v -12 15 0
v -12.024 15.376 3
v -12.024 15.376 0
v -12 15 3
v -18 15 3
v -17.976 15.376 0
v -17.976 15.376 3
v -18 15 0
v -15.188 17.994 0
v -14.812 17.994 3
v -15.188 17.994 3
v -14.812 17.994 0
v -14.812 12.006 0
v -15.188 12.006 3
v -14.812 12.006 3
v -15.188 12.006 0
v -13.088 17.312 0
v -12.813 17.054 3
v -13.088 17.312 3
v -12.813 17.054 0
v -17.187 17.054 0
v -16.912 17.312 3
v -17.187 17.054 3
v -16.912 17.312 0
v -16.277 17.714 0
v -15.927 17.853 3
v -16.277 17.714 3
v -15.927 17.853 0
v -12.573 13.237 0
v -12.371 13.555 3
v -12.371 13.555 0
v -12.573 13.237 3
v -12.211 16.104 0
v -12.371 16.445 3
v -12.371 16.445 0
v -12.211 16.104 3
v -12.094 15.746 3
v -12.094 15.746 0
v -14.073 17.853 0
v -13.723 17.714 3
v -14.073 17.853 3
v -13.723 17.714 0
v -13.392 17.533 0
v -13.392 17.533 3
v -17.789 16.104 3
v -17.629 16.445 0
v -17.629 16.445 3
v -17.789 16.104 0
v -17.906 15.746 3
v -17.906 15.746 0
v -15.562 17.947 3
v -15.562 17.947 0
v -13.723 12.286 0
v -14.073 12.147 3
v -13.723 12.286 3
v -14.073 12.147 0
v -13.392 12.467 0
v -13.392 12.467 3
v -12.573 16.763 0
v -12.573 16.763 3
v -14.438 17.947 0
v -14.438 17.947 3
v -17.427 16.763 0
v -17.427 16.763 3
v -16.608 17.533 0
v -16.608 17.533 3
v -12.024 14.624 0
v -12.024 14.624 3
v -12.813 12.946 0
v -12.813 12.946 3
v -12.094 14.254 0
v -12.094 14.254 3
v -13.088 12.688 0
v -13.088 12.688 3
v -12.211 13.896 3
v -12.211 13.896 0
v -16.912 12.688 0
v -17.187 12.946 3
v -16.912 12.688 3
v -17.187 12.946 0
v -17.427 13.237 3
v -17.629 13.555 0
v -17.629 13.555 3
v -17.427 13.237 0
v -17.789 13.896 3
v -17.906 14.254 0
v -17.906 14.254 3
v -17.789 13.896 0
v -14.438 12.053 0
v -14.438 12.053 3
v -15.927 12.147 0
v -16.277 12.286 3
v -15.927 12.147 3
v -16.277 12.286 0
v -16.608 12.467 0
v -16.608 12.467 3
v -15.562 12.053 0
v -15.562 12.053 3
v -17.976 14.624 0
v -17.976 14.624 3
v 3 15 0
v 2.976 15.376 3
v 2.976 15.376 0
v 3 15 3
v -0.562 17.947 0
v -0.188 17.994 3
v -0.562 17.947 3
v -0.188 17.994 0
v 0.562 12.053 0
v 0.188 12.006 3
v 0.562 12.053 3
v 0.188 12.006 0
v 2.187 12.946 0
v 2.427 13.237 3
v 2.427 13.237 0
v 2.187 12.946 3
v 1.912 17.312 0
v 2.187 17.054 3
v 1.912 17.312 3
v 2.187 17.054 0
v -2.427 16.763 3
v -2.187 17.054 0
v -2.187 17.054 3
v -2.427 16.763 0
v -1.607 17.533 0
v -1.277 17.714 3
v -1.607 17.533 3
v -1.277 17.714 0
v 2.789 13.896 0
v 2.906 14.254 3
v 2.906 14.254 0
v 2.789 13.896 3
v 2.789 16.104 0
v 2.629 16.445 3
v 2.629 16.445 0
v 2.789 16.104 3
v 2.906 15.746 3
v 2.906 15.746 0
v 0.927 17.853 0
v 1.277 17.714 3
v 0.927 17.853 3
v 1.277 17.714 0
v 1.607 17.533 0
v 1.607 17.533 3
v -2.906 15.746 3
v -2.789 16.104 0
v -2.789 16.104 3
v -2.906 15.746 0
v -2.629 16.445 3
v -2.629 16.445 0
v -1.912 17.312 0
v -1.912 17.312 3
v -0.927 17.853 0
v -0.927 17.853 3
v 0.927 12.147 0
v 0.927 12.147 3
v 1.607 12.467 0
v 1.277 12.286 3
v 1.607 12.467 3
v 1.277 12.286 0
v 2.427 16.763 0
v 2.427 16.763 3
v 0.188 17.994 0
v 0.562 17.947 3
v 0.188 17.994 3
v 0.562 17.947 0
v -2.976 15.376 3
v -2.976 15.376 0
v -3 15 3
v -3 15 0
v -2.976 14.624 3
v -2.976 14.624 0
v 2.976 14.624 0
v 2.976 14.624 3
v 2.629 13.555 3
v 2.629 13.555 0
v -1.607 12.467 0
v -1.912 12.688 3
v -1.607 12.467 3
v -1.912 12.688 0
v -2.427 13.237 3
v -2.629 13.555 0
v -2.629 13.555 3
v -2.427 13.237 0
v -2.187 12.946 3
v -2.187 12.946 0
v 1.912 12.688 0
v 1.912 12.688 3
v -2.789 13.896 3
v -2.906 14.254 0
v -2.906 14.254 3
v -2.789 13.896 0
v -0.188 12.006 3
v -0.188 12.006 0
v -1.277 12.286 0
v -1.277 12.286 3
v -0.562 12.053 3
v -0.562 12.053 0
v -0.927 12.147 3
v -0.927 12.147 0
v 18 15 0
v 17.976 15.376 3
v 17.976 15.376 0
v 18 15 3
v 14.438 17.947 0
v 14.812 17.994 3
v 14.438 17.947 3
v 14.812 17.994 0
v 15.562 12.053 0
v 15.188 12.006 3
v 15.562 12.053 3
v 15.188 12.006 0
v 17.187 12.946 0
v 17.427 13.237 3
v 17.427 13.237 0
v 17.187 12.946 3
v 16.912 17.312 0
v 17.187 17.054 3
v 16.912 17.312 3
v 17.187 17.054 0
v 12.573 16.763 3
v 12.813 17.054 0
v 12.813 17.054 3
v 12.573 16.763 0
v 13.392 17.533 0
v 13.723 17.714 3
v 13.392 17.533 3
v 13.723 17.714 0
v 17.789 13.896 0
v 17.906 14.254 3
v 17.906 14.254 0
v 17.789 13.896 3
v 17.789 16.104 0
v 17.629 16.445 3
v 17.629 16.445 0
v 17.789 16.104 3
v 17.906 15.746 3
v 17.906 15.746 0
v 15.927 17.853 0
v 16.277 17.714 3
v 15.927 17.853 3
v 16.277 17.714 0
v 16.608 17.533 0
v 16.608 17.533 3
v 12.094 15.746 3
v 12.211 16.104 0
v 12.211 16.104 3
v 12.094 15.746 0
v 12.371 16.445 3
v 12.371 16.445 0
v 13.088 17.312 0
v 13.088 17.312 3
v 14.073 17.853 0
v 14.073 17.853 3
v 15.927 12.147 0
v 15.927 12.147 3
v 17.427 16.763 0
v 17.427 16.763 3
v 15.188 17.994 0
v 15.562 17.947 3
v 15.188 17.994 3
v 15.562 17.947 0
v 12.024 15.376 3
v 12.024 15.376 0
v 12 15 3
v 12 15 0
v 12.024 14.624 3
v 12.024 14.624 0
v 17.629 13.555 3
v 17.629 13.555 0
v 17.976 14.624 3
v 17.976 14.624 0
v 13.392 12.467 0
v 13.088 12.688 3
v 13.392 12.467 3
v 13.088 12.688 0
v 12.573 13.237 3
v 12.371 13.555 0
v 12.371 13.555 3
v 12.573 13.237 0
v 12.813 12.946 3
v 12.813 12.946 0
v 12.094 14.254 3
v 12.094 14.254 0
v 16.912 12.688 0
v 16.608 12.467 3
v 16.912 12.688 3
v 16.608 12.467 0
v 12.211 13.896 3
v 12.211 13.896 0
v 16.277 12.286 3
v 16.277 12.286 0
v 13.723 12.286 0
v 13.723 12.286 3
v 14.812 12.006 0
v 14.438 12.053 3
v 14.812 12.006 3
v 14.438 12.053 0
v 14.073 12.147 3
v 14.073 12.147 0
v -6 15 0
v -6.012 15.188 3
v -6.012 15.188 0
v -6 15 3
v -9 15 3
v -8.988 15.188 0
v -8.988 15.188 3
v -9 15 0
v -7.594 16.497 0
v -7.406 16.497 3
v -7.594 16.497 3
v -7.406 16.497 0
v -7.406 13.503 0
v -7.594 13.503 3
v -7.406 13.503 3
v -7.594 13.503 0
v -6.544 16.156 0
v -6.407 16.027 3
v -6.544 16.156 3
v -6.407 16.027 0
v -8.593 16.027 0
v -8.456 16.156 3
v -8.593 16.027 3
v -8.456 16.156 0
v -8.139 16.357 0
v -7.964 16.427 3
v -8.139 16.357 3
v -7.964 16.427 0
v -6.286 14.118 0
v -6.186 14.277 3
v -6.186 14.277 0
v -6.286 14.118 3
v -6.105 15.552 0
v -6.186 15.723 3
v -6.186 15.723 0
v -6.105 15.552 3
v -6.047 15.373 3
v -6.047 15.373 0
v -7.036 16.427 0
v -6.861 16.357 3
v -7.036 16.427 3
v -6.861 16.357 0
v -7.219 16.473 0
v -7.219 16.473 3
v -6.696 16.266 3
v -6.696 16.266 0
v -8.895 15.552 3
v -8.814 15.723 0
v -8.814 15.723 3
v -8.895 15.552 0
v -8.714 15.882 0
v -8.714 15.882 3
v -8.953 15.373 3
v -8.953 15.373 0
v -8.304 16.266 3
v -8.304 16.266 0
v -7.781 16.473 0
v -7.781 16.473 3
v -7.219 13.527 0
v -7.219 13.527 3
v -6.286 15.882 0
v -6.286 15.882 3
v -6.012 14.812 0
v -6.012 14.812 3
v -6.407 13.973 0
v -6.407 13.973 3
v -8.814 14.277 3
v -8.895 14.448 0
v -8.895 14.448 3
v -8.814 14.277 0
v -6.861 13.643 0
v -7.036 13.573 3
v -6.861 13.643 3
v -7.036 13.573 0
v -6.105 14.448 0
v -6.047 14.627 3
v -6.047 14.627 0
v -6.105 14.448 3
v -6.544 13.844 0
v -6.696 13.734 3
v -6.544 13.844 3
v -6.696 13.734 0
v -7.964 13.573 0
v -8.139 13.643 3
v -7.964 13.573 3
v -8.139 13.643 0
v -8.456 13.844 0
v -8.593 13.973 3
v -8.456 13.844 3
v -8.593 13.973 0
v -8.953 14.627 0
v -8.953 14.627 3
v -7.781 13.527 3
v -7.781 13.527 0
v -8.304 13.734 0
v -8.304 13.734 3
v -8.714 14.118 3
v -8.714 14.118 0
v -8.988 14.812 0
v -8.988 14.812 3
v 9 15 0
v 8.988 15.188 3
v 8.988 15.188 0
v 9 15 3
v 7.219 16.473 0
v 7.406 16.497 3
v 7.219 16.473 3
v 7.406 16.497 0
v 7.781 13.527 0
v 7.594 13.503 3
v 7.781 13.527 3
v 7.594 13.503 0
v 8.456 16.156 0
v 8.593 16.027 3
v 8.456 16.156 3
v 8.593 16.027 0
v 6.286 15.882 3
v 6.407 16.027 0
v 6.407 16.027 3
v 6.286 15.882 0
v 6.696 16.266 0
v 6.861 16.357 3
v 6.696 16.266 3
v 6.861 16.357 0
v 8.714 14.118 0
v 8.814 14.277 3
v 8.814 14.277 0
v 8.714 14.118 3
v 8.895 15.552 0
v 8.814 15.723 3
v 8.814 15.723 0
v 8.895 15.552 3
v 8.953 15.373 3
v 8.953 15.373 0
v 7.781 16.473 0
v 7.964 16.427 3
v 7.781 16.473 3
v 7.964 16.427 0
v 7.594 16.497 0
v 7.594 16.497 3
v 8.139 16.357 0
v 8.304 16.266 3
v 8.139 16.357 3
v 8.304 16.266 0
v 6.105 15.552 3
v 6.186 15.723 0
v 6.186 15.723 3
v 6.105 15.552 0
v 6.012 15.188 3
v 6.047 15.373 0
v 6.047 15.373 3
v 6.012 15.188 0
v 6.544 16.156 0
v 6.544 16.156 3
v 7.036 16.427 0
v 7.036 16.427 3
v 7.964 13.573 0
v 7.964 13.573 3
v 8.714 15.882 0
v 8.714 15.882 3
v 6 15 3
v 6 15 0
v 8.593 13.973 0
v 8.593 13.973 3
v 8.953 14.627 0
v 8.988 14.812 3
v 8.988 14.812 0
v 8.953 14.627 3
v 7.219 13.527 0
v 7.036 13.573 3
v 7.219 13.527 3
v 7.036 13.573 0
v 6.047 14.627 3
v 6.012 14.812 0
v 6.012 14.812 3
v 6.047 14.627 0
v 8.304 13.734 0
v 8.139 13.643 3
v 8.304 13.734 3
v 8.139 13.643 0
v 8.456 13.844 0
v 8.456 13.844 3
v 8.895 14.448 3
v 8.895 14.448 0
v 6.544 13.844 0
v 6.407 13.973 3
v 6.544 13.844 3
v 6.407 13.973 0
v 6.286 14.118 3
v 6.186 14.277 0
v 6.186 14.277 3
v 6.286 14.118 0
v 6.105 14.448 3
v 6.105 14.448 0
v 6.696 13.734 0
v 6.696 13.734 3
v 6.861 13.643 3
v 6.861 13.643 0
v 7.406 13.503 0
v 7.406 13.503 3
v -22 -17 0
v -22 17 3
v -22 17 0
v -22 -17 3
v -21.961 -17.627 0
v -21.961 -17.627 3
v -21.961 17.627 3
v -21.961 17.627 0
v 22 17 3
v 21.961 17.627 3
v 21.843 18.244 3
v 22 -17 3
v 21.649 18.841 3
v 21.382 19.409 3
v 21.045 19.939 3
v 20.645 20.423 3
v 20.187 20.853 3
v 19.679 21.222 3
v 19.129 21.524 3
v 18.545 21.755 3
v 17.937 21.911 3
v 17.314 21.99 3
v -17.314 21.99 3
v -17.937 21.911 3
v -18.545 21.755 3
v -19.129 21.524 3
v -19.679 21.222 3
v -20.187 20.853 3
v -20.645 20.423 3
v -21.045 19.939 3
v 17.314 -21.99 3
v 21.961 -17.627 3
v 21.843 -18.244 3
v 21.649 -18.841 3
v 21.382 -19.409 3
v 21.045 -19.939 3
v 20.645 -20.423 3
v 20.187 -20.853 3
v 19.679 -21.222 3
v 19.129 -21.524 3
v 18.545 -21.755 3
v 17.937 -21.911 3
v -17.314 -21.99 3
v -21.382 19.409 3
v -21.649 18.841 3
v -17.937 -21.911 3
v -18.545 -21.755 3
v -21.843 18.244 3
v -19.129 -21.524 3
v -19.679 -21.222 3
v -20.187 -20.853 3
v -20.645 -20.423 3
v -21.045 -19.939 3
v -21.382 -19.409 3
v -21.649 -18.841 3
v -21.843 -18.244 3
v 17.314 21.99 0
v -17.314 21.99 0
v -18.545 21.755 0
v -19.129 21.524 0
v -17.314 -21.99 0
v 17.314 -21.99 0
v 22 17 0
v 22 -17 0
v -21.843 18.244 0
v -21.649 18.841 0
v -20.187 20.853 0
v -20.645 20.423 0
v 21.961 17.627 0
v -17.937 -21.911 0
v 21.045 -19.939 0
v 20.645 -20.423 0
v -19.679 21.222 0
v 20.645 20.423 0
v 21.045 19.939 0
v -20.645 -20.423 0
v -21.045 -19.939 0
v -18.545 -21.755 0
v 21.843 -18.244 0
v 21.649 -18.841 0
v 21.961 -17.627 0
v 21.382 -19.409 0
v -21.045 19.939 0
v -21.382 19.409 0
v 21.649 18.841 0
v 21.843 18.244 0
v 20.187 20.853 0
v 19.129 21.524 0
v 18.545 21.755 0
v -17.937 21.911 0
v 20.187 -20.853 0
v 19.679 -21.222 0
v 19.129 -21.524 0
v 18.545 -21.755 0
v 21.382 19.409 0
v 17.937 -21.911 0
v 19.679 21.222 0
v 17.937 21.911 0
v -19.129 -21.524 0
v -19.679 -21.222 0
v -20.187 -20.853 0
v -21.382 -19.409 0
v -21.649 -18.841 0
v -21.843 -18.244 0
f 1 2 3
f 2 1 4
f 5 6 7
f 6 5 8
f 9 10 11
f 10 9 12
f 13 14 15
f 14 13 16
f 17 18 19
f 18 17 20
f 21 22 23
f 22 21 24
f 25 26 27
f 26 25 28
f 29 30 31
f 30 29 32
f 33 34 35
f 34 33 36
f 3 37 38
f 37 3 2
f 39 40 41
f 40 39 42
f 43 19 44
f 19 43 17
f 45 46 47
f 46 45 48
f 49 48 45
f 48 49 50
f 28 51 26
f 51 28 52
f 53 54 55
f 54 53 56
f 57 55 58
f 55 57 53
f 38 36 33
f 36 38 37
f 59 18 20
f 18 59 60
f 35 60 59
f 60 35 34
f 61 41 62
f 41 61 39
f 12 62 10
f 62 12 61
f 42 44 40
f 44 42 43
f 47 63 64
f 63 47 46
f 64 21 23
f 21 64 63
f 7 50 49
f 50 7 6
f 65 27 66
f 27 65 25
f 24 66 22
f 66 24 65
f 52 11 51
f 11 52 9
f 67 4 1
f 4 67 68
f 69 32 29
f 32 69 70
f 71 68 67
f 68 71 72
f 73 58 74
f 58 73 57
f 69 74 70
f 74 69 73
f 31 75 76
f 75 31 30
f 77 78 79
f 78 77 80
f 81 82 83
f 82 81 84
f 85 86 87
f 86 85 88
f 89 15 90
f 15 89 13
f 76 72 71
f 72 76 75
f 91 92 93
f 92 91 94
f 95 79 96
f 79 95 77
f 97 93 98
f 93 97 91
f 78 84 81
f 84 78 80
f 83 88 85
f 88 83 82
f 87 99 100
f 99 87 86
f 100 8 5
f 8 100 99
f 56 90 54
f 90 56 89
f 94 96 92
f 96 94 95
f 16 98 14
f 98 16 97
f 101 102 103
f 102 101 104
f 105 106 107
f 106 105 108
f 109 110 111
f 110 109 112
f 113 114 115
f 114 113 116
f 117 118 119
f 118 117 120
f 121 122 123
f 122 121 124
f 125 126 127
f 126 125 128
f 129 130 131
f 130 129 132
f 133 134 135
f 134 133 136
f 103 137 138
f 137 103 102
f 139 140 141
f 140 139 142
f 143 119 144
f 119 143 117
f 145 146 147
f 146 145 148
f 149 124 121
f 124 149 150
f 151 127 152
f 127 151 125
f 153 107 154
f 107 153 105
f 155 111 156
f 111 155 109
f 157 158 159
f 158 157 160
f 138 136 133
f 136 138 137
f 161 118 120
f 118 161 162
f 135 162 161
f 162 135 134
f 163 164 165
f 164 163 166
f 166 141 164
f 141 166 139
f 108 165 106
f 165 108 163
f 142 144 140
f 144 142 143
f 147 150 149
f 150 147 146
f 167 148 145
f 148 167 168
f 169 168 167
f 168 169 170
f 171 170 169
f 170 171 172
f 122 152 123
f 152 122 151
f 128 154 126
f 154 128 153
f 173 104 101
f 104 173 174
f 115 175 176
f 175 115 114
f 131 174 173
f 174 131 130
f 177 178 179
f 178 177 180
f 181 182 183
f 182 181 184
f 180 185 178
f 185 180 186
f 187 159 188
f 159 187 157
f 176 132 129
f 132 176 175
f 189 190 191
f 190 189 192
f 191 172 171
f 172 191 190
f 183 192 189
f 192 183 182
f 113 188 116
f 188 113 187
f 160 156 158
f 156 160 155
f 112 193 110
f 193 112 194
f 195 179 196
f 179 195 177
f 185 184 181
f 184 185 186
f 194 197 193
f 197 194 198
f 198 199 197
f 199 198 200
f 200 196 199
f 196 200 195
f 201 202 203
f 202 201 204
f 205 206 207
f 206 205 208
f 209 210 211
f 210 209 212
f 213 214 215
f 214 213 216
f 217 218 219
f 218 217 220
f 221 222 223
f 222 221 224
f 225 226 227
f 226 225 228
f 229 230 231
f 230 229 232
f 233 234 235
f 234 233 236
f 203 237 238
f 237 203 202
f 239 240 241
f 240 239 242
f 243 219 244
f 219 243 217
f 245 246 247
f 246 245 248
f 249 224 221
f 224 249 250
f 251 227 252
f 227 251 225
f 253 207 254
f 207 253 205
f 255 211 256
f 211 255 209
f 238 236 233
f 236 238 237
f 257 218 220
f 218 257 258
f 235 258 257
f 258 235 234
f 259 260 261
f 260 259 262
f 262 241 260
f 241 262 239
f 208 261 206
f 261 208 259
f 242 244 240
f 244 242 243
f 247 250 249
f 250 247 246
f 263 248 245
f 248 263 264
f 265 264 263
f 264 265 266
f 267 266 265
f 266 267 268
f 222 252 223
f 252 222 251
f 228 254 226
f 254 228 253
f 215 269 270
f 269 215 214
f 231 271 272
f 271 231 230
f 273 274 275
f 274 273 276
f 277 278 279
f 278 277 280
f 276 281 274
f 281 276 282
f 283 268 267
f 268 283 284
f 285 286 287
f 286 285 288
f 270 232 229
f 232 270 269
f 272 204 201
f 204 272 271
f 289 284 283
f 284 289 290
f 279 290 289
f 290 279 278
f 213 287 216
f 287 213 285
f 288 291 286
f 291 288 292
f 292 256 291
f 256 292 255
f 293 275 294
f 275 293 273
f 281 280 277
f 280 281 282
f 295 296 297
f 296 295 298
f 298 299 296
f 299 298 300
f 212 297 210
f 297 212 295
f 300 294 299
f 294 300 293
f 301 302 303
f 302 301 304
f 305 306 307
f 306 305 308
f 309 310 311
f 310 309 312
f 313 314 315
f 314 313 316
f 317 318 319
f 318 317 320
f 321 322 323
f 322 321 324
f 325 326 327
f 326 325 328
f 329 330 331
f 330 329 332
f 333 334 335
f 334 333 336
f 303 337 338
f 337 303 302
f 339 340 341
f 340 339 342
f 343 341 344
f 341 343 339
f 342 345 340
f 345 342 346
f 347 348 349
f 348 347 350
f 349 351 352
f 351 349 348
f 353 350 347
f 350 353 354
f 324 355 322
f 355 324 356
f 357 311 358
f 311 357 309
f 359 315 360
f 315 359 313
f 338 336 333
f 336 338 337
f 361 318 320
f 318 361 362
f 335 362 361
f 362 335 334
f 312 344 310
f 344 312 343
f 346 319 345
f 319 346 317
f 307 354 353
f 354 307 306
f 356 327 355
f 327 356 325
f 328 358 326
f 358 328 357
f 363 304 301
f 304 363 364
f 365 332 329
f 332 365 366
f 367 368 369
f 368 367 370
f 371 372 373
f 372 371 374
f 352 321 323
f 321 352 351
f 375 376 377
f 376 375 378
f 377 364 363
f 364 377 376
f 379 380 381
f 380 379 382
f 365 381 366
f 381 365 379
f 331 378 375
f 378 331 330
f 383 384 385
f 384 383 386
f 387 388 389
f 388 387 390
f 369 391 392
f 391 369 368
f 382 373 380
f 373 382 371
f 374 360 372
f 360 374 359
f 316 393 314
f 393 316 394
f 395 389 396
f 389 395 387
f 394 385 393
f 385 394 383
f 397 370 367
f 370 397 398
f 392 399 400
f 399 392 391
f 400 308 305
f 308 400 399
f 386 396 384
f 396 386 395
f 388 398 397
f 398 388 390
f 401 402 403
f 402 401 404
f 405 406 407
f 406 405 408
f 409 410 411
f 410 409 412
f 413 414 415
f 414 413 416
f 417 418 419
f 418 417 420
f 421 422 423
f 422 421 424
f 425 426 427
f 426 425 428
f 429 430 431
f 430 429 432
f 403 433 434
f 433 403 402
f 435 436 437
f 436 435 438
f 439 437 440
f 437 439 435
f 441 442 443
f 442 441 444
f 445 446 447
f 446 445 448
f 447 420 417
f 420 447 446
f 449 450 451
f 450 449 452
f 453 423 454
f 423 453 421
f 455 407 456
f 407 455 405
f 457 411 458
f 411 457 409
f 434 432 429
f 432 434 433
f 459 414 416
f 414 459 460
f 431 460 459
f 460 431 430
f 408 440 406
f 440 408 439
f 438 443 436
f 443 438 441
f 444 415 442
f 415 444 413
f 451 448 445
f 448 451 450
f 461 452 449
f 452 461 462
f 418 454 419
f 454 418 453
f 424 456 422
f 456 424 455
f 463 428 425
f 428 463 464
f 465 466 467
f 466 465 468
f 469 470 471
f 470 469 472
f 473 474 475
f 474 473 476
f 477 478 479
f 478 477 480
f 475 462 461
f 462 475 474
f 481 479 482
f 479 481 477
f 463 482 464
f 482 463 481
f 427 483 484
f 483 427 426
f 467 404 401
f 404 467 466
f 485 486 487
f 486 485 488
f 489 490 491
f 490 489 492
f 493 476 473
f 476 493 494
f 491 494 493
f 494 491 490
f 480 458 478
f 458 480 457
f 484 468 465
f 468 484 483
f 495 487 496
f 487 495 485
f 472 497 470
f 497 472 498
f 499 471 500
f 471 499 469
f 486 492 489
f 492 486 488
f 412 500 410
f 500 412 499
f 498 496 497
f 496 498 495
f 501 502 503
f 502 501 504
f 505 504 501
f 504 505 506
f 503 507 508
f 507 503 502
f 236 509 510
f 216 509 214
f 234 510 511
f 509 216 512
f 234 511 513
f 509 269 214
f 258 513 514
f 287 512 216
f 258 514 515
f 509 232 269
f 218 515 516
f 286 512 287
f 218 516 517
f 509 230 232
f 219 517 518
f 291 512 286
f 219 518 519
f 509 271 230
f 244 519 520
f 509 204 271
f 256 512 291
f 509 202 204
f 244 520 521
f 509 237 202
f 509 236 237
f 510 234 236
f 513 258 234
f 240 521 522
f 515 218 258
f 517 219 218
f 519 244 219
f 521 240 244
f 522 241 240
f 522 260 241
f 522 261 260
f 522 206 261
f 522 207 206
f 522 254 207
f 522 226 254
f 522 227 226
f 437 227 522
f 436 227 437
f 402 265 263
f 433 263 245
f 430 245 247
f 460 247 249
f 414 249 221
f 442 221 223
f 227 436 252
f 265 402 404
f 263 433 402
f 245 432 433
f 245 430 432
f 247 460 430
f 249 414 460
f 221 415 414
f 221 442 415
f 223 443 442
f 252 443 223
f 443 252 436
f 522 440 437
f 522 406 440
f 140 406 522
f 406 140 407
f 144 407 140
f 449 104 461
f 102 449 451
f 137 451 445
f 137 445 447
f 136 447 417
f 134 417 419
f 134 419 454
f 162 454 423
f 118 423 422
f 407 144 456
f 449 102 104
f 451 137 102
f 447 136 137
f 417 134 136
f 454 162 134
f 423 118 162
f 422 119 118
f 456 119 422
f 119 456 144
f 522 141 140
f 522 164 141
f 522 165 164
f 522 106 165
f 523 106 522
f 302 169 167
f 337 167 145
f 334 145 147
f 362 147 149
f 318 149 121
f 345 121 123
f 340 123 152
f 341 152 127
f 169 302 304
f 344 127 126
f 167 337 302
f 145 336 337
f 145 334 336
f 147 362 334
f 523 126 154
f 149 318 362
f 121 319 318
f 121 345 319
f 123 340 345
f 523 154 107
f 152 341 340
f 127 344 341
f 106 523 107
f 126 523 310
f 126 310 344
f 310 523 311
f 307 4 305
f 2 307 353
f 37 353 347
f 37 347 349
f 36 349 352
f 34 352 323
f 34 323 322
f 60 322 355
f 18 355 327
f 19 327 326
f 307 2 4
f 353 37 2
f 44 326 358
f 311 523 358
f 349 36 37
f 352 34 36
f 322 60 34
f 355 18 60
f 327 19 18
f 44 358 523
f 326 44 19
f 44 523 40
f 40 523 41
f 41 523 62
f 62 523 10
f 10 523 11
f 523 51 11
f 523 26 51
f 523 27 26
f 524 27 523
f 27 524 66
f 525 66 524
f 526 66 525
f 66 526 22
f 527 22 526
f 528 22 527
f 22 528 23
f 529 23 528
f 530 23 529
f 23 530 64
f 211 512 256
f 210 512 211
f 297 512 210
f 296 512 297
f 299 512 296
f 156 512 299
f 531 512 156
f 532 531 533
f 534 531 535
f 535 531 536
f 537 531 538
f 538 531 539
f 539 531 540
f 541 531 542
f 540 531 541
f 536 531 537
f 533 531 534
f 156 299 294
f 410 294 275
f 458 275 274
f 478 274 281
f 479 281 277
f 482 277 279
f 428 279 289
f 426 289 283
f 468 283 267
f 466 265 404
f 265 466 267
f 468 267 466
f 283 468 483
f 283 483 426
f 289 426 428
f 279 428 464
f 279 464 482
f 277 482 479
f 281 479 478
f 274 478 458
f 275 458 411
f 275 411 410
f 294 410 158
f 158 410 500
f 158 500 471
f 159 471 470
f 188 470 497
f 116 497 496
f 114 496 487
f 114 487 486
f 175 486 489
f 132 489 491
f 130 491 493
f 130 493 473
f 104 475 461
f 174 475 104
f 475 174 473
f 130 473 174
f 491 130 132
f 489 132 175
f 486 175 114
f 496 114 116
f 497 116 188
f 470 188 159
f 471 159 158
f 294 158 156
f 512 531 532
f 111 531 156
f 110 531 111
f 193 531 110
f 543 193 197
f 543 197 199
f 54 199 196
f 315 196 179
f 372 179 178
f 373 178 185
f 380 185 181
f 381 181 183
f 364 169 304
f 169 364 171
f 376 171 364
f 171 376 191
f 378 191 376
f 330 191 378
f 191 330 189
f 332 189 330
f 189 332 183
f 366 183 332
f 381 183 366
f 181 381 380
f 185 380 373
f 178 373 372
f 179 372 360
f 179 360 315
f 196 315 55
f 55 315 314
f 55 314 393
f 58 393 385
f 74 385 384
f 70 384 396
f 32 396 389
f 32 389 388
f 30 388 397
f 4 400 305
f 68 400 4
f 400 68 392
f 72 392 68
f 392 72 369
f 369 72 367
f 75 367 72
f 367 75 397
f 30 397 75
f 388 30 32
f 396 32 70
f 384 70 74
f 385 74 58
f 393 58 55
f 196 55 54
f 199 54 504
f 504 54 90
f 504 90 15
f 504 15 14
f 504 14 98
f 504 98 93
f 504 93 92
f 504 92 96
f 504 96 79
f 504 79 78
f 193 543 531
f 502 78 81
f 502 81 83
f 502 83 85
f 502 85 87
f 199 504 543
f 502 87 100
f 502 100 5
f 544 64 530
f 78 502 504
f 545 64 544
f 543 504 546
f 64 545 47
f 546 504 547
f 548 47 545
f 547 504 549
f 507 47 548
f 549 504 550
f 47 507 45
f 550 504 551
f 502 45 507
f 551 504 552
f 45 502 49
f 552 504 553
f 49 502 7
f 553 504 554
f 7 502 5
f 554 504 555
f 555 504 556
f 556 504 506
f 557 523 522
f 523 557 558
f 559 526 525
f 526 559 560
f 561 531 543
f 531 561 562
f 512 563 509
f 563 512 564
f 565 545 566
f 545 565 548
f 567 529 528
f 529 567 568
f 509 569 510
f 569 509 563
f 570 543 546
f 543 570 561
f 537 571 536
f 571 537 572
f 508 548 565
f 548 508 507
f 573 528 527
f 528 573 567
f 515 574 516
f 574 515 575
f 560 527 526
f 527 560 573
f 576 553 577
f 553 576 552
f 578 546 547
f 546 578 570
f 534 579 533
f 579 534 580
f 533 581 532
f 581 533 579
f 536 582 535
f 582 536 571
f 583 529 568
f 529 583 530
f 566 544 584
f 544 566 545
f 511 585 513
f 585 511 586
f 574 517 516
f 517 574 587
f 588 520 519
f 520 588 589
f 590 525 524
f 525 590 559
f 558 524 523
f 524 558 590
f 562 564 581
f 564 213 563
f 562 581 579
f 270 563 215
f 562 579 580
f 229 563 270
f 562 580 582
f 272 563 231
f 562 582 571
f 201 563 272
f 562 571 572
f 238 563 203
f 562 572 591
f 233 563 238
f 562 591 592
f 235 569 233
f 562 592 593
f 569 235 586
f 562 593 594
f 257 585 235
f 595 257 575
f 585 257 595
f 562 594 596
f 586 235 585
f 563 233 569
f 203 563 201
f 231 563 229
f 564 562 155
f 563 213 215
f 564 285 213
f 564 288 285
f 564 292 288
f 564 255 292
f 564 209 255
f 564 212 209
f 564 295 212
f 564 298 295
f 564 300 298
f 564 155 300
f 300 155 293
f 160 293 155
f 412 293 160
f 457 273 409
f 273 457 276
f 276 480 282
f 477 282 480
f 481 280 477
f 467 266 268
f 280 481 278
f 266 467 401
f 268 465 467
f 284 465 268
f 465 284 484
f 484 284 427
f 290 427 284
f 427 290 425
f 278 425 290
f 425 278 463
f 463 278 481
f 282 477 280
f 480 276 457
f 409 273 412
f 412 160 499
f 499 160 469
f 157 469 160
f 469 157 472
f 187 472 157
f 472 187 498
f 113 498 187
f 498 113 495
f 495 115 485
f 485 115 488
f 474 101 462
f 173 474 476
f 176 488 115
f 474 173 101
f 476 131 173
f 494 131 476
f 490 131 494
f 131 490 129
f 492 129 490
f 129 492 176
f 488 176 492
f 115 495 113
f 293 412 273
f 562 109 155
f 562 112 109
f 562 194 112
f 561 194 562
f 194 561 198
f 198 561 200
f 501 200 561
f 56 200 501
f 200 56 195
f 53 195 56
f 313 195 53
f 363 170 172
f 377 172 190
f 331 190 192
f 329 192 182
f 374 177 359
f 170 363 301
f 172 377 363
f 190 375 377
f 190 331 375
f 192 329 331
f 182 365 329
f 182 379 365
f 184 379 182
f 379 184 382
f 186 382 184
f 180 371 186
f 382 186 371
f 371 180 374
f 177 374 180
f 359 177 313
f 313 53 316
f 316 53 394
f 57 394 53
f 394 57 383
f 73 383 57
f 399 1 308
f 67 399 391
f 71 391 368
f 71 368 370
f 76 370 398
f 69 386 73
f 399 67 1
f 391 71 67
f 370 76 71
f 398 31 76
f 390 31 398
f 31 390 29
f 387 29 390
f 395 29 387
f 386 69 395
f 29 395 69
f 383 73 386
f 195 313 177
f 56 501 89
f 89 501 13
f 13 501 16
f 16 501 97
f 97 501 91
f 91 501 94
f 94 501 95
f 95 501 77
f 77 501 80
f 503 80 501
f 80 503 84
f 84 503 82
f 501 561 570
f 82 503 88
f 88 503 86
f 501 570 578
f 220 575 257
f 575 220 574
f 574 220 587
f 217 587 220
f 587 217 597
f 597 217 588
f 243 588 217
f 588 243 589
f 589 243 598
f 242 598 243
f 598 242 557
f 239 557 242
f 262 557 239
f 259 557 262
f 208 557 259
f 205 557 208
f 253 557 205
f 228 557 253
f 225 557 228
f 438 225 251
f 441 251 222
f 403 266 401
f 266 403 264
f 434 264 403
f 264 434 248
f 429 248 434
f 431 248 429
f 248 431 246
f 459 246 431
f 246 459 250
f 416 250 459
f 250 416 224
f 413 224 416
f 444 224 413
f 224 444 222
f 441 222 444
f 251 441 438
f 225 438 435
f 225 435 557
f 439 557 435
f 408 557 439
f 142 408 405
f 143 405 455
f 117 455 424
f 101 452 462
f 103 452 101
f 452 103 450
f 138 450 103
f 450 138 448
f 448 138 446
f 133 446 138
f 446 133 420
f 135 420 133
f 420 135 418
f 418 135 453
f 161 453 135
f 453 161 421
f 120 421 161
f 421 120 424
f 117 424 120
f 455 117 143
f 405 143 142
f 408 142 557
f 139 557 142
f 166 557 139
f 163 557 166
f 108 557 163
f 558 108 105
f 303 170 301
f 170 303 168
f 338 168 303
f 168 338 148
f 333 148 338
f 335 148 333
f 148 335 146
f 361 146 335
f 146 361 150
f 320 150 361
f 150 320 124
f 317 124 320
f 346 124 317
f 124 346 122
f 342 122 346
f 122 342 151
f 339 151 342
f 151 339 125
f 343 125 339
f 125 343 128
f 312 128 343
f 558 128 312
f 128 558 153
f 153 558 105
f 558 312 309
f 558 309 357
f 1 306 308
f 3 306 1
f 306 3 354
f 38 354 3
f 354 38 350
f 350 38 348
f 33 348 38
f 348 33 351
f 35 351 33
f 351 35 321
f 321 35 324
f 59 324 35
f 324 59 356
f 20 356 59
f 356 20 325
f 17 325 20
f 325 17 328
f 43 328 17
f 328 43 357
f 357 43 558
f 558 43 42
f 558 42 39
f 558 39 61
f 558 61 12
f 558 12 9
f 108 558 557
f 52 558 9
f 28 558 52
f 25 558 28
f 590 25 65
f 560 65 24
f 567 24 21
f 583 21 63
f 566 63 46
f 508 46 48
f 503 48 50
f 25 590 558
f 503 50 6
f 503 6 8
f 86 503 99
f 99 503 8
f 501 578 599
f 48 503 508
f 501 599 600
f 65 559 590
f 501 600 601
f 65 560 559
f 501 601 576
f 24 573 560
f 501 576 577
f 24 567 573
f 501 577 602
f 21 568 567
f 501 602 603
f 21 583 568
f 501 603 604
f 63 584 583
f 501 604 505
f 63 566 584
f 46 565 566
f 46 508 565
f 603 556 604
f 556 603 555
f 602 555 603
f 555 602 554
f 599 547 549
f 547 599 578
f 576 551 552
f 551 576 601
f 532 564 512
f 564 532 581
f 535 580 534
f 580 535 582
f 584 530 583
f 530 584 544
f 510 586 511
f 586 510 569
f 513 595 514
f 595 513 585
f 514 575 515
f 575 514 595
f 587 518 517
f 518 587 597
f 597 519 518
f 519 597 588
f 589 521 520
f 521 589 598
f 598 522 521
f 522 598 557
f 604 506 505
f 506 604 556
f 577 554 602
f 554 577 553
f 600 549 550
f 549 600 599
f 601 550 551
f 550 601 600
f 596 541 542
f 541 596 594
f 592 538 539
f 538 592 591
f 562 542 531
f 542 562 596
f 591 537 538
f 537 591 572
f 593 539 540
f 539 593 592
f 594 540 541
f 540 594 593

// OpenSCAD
$fn = 50;


difference() {
	union() {
		*color(alpha = 1.0000000000, c = "gray") {
			translate(v = [0, 7, 0]) {
				linear_extrude(height = 1) {
					text(font = "Arial:style=Bold", halign = "center", size = 4.5000000000, text = "COMMENT plate main", valign = "center");
				}
			}
		}
		hull() {
			translate(v = [-17.0000000000, 17.0000000000, 0]) {
				cylinder(h = 3, r = 5);
			}
			translate(v = [17.0000000000, 17.0000000000, 0]) {
				cylinder(h = 3, r = 5);
			}
			translate(v = [-17.0000000000, -17.0000000000, 0]) {
				cylinder(h = 3, r = 5);
			}
			translate(v = [17.0000000000, -17.0000000000, 0]) {
				cylinder(h = 3, r = 5);
			}
		}
	}
	union() {
		*color(alpha = 1.0000000000, c = "gray") {
			translate(v = [0, 7, 0]) {
				linear_extrude(height = 1) {
					text(font = "Arial:style=Bold", halign = "center", size = 4.5000000000, text = "COMMENT holes main", valign = "center");
				}
			}
		}
		translate(v = [-15.0000000000, 15.0000000000, -100.0000000000]) {
			cylinder(h = 200, r = 3.0000000000);
		}
		translate(v = [0.0000000000, 15.0000000000, -100.0000000000]) {
			cylinder(h = 200, r = 3.0000000000);
		}
		translate(v = [15.0000000000, 15.0000000000, -100.0000000000]) {
			cylinder(h = 200, r = 3.0000000000);
		}
		translate(v = [-15.0000000000, 15.0000000000, -100.0000000000]) {
			cylinder(h = 200, r = 1.5000000000);
		}
		translate(v = [-7.5000000000, 15.0000000000, -100.0000000000]) {
			cylinder(h = 200, r = 1.5000000000);
		}
		translate(v = [0.0000000000, 15.0000000000, -100.0000000000]) {
			cylinder(h = 200, r = 1.5000000000);
		}
		translate(v = [7.5000000000, 15.0000000000, -100.0000000000]) {
			cylinder(h = 200, r = 1.5000000000);
		}
		translate(v = [15.0000000000, 15.0000000000, -100.0000000000]) {
			cylinder(h = 200, r = 1.5000000000);
		}
		translate(v = [-15.0000000000, 15.0000000000, -100.0000000000]) {
			cylinder(h = 200, r = 1.5000000000);
		}
		translate(v = [-7.5000000000, 15.0000000000, -100.0000000000]) {
			cylinder(h = 200, r = 1.5000000000);
		}
		translate(v = [0.0000000000, 15.0000000000, -100.0000000000]) {
			cylinder(h = 200, r = 1.5000000000);
		}
		translate(v = [7.5000000000, 15.0000000000, -100.0000000000]) {
			cylinder(h = 200, r = 1.5000000000);
		}
		translate(v = [15.0000000000, 15.0000000000, -100.0000000000]) {
			cylinder(h = 200, r = 1.5000000000);
		}
		translate(v = [-15.0000000000, 15.0000000000, -100.0000000000]) {
			cylinder(h = 200, r = 1.5000000000);
		}
		translate(v = [-7.5000000000, 15.0000000000, -100.0000000000]) {
			cylinder(h = 200, r = 1.5000000000);
		}
		translate(v = [0.0000000000, 15.0000000000, -100.0000000000]) {
			cylinder(h = 200, r = 1.5000000000);
		}
		translate(v = [7.5000000000, 15.0000000000, -100.0000000000]) {
			cylinder(h = 200, r = 1.5000000000);
		}
		translate(v = [15.0000000000, 15.0000000000, -100.0000000000]) {
			cylinder(h = 200, r = 1.5000000000);
		}
	}
}
